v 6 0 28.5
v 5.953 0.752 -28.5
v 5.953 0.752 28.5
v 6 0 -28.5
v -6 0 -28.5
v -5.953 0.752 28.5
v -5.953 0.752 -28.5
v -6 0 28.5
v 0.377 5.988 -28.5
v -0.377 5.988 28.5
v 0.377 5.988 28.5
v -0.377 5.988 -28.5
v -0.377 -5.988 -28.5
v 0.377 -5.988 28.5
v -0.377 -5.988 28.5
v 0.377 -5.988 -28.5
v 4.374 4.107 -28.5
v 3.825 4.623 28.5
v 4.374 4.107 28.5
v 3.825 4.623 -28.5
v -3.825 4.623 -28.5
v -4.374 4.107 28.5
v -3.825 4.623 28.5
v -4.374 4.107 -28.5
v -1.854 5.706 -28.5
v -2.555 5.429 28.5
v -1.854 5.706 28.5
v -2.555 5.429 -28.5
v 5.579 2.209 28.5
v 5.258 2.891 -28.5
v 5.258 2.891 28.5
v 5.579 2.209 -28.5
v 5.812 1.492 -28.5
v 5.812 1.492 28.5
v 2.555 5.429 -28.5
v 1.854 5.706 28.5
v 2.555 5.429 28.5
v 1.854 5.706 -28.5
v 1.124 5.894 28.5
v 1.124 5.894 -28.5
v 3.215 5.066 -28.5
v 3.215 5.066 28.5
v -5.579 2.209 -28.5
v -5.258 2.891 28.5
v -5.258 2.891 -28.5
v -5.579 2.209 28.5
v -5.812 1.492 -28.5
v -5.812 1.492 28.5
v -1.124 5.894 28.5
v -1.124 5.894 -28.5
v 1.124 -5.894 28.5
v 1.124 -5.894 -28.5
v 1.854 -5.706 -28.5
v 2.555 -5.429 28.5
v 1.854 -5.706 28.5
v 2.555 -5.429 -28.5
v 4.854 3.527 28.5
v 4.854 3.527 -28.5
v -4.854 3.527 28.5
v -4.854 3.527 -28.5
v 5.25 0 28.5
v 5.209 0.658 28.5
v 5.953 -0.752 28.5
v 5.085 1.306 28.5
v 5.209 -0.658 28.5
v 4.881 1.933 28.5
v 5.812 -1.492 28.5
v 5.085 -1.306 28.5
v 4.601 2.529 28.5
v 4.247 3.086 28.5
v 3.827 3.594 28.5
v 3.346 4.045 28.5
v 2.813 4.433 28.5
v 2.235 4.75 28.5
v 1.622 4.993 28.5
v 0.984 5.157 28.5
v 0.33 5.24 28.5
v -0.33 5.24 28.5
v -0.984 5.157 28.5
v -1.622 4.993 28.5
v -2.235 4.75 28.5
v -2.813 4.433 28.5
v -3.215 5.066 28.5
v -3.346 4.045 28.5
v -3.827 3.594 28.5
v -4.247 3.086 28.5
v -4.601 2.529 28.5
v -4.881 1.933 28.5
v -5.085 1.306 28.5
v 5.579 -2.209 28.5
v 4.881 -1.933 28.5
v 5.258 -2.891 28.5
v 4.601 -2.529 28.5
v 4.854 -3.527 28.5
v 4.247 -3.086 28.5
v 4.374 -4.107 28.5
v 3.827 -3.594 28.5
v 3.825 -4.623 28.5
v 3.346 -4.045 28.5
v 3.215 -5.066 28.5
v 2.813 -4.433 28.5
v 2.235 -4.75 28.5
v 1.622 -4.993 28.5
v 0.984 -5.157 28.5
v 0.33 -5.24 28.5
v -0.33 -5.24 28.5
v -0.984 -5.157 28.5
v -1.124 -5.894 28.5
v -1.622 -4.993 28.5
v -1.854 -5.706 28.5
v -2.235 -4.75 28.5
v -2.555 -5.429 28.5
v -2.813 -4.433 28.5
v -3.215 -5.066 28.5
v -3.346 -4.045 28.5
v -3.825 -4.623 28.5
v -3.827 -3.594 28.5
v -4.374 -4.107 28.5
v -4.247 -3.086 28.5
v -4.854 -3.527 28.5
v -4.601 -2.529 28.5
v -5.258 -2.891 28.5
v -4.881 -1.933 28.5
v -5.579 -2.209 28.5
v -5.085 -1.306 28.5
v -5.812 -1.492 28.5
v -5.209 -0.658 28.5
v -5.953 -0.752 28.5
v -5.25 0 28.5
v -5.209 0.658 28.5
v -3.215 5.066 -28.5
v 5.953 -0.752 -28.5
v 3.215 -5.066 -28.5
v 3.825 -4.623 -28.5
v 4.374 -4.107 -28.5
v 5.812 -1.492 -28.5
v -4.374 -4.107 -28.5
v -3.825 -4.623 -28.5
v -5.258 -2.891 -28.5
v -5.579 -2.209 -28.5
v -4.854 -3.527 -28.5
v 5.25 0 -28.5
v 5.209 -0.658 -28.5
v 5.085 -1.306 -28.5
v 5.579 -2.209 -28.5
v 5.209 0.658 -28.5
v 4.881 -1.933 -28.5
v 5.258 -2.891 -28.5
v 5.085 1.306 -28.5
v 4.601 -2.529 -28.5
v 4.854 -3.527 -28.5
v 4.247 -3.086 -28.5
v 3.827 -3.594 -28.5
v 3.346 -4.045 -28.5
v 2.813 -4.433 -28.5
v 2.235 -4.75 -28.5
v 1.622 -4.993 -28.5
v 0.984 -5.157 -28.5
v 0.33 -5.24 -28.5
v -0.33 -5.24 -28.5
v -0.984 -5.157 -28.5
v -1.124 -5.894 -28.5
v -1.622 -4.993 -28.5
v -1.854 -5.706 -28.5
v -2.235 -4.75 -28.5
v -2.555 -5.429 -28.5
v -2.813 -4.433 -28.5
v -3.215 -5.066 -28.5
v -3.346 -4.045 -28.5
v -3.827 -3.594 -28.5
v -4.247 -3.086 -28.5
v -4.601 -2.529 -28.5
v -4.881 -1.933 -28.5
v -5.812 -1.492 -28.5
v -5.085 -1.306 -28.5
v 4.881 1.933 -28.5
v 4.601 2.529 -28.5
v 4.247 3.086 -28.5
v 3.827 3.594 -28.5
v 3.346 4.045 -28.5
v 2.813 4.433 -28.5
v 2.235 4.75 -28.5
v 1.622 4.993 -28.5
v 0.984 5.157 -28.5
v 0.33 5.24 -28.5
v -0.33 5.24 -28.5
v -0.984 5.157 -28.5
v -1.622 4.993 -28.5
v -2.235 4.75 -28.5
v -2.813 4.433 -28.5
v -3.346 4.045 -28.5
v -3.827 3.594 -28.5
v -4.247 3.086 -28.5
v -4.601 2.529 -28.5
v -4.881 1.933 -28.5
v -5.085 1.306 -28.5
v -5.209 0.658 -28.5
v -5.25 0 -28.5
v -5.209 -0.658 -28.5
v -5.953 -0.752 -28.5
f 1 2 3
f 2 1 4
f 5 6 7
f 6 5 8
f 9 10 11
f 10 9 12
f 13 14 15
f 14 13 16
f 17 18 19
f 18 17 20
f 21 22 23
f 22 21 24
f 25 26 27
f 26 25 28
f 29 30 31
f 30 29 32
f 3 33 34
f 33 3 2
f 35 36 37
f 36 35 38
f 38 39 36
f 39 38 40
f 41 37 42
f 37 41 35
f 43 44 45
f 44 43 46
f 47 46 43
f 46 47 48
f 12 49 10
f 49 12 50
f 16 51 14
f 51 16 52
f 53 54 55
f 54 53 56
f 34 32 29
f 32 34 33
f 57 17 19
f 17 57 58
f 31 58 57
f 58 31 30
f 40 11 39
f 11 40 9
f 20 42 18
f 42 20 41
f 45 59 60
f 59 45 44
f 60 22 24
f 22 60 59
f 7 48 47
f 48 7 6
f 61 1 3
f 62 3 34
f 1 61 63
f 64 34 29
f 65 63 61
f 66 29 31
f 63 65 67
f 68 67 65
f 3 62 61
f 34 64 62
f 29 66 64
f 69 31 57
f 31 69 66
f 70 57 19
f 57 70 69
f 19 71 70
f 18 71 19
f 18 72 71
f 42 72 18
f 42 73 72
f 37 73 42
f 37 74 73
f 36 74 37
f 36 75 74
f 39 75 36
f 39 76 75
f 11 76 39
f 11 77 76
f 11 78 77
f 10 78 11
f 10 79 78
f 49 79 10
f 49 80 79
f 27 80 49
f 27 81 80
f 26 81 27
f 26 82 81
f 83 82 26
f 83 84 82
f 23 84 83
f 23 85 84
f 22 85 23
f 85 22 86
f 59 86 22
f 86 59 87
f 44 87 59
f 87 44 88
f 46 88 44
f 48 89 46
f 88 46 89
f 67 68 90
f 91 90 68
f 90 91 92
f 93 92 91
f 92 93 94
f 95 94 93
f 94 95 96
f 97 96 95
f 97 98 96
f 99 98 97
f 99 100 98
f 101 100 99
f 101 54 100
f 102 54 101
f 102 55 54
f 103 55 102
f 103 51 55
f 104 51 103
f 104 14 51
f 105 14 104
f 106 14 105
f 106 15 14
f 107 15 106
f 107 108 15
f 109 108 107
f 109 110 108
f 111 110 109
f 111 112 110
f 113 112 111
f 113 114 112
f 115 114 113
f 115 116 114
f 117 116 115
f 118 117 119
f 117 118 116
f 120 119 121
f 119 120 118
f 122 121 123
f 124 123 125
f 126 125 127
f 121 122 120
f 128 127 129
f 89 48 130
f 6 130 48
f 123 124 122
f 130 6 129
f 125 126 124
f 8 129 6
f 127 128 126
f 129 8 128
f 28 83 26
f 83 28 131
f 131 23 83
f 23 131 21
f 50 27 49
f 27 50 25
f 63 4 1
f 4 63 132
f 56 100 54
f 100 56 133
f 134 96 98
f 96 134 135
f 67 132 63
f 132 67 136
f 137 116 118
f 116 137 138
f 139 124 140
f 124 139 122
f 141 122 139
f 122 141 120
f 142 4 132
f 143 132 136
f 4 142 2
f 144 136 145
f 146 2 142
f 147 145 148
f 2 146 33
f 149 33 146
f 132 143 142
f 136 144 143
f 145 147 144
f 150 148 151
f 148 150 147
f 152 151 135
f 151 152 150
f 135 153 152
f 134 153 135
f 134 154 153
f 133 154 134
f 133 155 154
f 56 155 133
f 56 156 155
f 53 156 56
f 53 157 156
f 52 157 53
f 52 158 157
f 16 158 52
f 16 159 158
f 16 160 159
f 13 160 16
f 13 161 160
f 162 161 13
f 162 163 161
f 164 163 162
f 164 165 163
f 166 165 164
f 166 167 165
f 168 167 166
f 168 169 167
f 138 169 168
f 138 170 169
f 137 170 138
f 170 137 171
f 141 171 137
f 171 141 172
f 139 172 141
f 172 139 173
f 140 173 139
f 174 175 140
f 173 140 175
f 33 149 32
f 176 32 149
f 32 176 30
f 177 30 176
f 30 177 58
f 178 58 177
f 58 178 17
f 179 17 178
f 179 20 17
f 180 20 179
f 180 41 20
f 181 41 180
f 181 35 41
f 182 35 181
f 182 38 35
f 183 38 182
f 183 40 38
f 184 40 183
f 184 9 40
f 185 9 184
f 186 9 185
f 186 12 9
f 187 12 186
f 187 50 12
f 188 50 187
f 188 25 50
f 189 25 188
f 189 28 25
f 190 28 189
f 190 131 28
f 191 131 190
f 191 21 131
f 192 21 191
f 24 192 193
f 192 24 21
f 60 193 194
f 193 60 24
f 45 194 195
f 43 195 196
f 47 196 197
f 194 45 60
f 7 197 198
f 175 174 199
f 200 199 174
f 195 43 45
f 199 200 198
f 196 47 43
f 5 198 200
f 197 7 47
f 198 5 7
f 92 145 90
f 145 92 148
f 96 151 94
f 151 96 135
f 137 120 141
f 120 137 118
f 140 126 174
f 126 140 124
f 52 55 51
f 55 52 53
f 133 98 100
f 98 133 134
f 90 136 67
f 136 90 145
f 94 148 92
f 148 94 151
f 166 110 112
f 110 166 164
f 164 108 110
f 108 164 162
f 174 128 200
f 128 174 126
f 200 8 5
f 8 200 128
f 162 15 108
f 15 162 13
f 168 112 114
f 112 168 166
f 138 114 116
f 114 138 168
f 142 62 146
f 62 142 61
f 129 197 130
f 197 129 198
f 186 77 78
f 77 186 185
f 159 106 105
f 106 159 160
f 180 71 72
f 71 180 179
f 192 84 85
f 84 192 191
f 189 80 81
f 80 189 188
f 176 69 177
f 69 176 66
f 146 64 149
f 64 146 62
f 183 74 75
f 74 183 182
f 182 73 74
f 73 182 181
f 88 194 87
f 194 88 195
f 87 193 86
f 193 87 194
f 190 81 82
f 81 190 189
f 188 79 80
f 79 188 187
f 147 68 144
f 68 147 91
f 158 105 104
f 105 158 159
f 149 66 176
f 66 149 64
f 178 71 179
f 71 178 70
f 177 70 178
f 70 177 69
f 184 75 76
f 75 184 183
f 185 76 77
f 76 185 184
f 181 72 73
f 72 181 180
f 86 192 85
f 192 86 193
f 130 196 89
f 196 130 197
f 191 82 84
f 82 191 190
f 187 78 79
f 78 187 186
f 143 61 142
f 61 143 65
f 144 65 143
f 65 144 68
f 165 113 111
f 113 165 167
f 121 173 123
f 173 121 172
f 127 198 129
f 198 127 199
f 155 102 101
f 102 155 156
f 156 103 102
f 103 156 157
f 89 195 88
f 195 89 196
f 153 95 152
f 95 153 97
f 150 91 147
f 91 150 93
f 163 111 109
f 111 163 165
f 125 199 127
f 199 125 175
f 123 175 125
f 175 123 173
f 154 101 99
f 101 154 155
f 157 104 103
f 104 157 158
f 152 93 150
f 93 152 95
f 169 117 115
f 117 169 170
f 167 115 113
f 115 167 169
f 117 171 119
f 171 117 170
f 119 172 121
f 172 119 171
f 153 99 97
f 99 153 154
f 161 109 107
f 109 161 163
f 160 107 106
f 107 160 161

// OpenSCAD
$fn = 50;


difference() {
	union() {
		translate(v = [0, 0, -28.5000000000]) {
			cylinder(h = 57, r = 6.0000000000);
		}
	}
	union() {
		translate(v = [0, 0, -100.0000000000]) {
			cylinder(h = 200, r = 5.2500000000);
		}
	}
}
